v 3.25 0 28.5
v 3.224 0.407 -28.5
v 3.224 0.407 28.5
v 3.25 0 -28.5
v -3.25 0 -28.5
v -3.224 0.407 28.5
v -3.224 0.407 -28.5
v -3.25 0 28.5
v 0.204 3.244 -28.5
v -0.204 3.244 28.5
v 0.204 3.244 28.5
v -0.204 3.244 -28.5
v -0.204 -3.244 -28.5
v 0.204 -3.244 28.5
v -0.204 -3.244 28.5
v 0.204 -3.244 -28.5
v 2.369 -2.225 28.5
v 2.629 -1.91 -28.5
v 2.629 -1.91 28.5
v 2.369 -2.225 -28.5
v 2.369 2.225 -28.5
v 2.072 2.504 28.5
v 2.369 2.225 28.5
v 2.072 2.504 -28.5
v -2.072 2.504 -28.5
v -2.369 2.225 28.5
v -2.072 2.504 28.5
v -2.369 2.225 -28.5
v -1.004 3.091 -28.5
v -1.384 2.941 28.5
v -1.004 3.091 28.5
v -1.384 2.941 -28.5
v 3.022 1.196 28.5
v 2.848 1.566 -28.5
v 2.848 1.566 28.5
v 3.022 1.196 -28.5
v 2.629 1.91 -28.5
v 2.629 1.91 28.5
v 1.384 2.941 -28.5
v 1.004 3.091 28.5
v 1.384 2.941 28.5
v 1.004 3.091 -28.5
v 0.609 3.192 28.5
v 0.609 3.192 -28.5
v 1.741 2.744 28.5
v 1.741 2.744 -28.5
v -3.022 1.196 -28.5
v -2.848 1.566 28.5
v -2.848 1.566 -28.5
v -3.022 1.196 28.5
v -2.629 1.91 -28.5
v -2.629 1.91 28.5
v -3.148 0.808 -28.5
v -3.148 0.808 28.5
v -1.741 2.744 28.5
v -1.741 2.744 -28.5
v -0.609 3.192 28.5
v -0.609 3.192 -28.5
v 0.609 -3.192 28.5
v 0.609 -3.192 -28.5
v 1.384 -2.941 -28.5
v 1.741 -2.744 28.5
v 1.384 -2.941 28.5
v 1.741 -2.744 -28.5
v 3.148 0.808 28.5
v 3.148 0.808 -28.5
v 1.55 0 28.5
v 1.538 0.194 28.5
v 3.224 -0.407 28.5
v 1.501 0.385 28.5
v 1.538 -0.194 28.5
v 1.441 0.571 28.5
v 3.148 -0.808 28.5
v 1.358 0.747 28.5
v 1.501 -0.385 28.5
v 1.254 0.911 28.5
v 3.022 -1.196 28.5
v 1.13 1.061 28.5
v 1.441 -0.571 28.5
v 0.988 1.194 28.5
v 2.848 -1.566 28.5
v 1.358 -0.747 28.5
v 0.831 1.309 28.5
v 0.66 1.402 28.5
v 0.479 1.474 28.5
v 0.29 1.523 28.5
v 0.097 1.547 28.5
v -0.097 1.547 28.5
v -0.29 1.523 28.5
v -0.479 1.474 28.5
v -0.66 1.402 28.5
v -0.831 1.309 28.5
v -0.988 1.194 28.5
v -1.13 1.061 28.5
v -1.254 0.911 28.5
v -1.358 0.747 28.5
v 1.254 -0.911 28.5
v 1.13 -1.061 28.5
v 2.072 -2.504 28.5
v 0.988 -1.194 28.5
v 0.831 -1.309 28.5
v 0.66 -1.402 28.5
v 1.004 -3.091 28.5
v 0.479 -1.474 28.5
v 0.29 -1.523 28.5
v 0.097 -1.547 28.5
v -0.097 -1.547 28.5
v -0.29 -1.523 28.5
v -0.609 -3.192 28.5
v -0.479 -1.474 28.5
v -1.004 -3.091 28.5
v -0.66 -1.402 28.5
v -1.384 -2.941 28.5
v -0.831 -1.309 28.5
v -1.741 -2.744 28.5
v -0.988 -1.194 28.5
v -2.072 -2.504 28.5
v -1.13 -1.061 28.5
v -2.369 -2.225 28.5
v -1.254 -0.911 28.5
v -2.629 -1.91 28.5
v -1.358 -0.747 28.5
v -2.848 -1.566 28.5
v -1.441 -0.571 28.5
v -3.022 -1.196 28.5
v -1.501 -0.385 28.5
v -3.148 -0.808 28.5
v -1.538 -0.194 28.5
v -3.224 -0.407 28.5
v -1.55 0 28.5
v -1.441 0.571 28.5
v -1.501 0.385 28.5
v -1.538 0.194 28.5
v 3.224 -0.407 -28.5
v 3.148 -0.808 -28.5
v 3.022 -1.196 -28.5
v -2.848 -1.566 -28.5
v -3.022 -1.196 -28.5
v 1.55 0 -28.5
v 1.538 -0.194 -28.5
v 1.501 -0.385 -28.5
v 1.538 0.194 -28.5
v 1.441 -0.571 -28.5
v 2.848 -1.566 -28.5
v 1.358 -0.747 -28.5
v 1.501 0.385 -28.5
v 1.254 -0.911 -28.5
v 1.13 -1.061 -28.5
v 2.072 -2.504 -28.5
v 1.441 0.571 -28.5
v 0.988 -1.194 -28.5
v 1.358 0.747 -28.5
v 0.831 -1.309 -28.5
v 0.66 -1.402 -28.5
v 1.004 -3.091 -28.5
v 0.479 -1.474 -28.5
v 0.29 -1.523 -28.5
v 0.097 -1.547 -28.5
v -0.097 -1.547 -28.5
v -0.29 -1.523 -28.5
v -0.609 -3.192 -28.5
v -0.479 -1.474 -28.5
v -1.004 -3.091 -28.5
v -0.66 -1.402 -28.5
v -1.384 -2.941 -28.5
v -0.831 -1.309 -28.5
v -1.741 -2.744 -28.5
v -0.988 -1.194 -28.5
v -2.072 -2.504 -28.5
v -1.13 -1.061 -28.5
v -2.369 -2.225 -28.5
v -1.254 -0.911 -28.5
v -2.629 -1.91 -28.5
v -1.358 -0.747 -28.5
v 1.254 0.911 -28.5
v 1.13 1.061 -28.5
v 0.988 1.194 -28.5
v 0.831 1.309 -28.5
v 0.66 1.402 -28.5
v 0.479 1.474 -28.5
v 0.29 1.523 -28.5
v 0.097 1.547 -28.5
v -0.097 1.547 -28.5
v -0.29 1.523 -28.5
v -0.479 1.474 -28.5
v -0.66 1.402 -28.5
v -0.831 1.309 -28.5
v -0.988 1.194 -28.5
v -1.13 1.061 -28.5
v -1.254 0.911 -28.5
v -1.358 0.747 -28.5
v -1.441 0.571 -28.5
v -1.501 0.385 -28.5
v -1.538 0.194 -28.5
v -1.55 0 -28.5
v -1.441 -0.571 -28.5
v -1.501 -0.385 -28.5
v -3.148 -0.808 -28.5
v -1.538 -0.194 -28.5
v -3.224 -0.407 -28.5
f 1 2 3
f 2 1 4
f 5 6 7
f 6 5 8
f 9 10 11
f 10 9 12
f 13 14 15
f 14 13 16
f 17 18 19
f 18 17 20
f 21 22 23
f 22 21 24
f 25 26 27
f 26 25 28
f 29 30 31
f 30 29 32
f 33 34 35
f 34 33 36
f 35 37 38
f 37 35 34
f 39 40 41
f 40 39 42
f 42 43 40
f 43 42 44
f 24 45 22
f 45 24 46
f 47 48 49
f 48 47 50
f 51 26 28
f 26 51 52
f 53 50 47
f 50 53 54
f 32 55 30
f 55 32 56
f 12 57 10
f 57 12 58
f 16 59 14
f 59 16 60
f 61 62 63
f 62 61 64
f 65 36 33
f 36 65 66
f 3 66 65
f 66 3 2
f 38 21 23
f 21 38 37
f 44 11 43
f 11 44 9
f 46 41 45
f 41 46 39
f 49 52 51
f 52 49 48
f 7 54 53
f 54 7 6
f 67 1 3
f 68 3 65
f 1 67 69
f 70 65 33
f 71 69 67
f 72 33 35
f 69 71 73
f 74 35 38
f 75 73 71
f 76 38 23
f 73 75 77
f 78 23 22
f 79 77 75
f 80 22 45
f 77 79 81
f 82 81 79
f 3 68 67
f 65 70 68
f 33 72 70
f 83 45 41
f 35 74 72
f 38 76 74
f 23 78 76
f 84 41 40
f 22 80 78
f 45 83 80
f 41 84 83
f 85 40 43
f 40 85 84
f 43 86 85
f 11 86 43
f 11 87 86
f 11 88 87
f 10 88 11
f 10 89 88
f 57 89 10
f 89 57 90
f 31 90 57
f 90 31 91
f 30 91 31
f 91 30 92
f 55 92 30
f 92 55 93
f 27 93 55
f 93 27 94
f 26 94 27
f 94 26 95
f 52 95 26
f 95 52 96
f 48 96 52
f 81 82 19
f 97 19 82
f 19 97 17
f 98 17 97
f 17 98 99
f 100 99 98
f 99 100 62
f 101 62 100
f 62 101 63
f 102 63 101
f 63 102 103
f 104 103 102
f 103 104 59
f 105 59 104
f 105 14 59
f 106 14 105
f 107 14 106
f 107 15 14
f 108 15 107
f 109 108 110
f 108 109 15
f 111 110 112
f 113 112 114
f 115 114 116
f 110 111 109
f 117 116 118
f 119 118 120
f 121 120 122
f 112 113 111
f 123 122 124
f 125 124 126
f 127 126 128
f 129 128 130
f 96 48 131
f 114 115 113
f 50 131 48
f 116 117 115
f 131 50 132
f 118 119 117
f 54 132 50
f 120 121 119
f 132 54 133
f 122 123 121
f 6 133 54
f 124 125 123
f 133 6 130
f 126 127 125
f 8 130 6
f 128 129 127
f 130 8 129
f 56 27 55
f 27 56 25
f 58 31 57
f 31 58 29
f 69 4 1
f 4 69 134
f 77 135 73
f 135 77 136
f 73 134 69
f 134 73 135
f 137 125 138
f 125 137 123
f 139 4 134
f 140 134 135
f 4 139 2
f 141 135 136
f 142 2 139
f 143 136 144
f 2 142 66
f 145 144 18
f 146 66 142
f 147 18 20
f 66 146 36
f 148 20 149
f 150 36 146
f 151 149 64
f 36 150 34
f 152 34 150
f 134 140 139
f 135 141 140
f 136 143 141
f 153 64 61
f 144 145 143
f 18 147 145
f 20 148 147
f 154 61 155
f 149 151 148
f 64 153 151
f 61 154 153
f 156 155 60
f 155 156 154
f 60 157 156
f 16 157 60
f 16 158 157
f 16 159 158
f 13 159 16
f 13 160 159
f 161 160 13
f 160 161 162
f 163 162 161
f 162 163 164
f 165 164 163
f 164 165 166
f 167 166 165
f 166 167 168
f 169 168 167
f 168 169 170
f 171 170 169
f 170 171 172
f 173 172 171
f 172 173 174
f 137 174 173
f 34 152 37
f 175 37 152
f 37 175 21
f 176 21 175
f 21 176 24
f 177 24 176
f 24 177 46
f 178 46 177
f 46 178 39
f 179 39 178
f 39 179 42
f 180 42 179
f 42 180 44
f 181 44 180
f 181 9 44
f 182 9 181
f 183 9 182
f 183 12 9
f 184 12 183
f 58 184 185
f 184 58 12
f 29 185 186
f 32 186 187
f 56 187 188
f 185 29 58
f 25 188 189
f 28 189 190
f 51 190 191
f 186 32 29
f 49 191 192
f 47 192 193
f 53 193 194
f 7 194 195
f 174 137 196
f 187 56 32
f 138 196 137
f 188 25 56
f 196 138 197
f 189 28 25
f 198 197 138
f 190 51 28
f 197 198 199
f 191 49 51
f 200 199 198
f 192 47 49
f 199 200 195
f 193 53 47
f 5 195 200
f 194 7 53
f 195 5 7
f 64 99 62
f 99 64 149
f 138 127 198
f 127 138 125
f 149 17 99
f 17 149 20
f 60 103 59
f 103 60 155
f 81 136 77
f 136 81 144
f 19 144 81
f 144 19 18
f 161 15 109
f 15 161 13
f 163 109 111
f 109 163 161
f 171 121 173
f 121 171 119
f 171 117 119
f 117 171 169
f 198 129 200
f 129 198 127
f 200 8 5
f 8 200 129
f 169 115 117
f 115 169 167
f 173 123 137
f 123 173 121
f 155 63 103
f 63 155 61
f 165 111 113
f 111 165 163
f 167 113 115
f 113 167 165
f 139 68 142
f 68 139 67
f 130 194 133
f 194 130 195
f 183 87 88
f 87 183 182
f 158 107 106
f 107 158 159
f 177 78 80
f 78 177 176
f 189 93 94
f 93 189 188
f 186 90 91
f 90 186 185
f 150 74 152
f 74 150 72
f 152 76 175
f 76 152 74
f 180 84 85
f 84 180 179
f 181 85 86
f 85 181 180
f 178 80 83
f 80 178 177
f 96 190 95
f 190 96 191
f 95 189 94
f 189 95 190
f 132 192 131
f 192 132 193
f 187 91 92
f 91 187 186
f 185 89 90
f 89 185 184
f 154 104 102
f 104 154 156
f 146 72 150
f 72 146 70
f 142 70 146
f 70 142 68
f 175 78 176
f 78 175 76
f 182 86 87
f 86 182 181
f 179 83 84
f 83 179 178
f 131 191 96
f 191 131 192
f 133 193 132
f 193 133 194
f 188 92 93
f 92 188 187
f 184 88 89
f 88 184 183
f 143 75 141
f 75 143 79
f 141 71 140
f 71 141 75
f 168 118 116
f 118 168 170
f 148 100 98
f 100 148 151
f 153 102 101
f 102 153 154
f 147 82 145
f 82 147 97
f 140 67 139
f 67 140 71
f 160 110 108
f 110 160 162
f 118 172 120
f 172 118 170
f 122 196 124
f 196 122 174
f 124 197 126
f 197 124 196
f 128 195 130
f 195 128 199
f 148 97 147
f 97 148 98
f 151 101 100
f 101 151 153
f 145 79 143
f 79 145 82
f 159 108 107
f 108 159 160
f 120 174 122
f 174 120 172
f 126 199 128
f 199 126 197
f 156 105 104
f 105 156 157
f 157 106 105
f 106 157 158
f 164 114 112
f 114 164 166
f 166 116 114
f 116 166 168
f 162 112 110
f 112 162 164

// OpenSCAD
$fn = 50;


difference() {
	union() {
		translate(v = [0, 0, -28.5000000000]) {
			cylinder(h = 57, r = 3.2500000000);
		}
	}
	union() {
		translate(v = [0, 0, -100.0000000000]) {
			cylinder(h = 200, r = 1.5500000000);
		}
	}
}
